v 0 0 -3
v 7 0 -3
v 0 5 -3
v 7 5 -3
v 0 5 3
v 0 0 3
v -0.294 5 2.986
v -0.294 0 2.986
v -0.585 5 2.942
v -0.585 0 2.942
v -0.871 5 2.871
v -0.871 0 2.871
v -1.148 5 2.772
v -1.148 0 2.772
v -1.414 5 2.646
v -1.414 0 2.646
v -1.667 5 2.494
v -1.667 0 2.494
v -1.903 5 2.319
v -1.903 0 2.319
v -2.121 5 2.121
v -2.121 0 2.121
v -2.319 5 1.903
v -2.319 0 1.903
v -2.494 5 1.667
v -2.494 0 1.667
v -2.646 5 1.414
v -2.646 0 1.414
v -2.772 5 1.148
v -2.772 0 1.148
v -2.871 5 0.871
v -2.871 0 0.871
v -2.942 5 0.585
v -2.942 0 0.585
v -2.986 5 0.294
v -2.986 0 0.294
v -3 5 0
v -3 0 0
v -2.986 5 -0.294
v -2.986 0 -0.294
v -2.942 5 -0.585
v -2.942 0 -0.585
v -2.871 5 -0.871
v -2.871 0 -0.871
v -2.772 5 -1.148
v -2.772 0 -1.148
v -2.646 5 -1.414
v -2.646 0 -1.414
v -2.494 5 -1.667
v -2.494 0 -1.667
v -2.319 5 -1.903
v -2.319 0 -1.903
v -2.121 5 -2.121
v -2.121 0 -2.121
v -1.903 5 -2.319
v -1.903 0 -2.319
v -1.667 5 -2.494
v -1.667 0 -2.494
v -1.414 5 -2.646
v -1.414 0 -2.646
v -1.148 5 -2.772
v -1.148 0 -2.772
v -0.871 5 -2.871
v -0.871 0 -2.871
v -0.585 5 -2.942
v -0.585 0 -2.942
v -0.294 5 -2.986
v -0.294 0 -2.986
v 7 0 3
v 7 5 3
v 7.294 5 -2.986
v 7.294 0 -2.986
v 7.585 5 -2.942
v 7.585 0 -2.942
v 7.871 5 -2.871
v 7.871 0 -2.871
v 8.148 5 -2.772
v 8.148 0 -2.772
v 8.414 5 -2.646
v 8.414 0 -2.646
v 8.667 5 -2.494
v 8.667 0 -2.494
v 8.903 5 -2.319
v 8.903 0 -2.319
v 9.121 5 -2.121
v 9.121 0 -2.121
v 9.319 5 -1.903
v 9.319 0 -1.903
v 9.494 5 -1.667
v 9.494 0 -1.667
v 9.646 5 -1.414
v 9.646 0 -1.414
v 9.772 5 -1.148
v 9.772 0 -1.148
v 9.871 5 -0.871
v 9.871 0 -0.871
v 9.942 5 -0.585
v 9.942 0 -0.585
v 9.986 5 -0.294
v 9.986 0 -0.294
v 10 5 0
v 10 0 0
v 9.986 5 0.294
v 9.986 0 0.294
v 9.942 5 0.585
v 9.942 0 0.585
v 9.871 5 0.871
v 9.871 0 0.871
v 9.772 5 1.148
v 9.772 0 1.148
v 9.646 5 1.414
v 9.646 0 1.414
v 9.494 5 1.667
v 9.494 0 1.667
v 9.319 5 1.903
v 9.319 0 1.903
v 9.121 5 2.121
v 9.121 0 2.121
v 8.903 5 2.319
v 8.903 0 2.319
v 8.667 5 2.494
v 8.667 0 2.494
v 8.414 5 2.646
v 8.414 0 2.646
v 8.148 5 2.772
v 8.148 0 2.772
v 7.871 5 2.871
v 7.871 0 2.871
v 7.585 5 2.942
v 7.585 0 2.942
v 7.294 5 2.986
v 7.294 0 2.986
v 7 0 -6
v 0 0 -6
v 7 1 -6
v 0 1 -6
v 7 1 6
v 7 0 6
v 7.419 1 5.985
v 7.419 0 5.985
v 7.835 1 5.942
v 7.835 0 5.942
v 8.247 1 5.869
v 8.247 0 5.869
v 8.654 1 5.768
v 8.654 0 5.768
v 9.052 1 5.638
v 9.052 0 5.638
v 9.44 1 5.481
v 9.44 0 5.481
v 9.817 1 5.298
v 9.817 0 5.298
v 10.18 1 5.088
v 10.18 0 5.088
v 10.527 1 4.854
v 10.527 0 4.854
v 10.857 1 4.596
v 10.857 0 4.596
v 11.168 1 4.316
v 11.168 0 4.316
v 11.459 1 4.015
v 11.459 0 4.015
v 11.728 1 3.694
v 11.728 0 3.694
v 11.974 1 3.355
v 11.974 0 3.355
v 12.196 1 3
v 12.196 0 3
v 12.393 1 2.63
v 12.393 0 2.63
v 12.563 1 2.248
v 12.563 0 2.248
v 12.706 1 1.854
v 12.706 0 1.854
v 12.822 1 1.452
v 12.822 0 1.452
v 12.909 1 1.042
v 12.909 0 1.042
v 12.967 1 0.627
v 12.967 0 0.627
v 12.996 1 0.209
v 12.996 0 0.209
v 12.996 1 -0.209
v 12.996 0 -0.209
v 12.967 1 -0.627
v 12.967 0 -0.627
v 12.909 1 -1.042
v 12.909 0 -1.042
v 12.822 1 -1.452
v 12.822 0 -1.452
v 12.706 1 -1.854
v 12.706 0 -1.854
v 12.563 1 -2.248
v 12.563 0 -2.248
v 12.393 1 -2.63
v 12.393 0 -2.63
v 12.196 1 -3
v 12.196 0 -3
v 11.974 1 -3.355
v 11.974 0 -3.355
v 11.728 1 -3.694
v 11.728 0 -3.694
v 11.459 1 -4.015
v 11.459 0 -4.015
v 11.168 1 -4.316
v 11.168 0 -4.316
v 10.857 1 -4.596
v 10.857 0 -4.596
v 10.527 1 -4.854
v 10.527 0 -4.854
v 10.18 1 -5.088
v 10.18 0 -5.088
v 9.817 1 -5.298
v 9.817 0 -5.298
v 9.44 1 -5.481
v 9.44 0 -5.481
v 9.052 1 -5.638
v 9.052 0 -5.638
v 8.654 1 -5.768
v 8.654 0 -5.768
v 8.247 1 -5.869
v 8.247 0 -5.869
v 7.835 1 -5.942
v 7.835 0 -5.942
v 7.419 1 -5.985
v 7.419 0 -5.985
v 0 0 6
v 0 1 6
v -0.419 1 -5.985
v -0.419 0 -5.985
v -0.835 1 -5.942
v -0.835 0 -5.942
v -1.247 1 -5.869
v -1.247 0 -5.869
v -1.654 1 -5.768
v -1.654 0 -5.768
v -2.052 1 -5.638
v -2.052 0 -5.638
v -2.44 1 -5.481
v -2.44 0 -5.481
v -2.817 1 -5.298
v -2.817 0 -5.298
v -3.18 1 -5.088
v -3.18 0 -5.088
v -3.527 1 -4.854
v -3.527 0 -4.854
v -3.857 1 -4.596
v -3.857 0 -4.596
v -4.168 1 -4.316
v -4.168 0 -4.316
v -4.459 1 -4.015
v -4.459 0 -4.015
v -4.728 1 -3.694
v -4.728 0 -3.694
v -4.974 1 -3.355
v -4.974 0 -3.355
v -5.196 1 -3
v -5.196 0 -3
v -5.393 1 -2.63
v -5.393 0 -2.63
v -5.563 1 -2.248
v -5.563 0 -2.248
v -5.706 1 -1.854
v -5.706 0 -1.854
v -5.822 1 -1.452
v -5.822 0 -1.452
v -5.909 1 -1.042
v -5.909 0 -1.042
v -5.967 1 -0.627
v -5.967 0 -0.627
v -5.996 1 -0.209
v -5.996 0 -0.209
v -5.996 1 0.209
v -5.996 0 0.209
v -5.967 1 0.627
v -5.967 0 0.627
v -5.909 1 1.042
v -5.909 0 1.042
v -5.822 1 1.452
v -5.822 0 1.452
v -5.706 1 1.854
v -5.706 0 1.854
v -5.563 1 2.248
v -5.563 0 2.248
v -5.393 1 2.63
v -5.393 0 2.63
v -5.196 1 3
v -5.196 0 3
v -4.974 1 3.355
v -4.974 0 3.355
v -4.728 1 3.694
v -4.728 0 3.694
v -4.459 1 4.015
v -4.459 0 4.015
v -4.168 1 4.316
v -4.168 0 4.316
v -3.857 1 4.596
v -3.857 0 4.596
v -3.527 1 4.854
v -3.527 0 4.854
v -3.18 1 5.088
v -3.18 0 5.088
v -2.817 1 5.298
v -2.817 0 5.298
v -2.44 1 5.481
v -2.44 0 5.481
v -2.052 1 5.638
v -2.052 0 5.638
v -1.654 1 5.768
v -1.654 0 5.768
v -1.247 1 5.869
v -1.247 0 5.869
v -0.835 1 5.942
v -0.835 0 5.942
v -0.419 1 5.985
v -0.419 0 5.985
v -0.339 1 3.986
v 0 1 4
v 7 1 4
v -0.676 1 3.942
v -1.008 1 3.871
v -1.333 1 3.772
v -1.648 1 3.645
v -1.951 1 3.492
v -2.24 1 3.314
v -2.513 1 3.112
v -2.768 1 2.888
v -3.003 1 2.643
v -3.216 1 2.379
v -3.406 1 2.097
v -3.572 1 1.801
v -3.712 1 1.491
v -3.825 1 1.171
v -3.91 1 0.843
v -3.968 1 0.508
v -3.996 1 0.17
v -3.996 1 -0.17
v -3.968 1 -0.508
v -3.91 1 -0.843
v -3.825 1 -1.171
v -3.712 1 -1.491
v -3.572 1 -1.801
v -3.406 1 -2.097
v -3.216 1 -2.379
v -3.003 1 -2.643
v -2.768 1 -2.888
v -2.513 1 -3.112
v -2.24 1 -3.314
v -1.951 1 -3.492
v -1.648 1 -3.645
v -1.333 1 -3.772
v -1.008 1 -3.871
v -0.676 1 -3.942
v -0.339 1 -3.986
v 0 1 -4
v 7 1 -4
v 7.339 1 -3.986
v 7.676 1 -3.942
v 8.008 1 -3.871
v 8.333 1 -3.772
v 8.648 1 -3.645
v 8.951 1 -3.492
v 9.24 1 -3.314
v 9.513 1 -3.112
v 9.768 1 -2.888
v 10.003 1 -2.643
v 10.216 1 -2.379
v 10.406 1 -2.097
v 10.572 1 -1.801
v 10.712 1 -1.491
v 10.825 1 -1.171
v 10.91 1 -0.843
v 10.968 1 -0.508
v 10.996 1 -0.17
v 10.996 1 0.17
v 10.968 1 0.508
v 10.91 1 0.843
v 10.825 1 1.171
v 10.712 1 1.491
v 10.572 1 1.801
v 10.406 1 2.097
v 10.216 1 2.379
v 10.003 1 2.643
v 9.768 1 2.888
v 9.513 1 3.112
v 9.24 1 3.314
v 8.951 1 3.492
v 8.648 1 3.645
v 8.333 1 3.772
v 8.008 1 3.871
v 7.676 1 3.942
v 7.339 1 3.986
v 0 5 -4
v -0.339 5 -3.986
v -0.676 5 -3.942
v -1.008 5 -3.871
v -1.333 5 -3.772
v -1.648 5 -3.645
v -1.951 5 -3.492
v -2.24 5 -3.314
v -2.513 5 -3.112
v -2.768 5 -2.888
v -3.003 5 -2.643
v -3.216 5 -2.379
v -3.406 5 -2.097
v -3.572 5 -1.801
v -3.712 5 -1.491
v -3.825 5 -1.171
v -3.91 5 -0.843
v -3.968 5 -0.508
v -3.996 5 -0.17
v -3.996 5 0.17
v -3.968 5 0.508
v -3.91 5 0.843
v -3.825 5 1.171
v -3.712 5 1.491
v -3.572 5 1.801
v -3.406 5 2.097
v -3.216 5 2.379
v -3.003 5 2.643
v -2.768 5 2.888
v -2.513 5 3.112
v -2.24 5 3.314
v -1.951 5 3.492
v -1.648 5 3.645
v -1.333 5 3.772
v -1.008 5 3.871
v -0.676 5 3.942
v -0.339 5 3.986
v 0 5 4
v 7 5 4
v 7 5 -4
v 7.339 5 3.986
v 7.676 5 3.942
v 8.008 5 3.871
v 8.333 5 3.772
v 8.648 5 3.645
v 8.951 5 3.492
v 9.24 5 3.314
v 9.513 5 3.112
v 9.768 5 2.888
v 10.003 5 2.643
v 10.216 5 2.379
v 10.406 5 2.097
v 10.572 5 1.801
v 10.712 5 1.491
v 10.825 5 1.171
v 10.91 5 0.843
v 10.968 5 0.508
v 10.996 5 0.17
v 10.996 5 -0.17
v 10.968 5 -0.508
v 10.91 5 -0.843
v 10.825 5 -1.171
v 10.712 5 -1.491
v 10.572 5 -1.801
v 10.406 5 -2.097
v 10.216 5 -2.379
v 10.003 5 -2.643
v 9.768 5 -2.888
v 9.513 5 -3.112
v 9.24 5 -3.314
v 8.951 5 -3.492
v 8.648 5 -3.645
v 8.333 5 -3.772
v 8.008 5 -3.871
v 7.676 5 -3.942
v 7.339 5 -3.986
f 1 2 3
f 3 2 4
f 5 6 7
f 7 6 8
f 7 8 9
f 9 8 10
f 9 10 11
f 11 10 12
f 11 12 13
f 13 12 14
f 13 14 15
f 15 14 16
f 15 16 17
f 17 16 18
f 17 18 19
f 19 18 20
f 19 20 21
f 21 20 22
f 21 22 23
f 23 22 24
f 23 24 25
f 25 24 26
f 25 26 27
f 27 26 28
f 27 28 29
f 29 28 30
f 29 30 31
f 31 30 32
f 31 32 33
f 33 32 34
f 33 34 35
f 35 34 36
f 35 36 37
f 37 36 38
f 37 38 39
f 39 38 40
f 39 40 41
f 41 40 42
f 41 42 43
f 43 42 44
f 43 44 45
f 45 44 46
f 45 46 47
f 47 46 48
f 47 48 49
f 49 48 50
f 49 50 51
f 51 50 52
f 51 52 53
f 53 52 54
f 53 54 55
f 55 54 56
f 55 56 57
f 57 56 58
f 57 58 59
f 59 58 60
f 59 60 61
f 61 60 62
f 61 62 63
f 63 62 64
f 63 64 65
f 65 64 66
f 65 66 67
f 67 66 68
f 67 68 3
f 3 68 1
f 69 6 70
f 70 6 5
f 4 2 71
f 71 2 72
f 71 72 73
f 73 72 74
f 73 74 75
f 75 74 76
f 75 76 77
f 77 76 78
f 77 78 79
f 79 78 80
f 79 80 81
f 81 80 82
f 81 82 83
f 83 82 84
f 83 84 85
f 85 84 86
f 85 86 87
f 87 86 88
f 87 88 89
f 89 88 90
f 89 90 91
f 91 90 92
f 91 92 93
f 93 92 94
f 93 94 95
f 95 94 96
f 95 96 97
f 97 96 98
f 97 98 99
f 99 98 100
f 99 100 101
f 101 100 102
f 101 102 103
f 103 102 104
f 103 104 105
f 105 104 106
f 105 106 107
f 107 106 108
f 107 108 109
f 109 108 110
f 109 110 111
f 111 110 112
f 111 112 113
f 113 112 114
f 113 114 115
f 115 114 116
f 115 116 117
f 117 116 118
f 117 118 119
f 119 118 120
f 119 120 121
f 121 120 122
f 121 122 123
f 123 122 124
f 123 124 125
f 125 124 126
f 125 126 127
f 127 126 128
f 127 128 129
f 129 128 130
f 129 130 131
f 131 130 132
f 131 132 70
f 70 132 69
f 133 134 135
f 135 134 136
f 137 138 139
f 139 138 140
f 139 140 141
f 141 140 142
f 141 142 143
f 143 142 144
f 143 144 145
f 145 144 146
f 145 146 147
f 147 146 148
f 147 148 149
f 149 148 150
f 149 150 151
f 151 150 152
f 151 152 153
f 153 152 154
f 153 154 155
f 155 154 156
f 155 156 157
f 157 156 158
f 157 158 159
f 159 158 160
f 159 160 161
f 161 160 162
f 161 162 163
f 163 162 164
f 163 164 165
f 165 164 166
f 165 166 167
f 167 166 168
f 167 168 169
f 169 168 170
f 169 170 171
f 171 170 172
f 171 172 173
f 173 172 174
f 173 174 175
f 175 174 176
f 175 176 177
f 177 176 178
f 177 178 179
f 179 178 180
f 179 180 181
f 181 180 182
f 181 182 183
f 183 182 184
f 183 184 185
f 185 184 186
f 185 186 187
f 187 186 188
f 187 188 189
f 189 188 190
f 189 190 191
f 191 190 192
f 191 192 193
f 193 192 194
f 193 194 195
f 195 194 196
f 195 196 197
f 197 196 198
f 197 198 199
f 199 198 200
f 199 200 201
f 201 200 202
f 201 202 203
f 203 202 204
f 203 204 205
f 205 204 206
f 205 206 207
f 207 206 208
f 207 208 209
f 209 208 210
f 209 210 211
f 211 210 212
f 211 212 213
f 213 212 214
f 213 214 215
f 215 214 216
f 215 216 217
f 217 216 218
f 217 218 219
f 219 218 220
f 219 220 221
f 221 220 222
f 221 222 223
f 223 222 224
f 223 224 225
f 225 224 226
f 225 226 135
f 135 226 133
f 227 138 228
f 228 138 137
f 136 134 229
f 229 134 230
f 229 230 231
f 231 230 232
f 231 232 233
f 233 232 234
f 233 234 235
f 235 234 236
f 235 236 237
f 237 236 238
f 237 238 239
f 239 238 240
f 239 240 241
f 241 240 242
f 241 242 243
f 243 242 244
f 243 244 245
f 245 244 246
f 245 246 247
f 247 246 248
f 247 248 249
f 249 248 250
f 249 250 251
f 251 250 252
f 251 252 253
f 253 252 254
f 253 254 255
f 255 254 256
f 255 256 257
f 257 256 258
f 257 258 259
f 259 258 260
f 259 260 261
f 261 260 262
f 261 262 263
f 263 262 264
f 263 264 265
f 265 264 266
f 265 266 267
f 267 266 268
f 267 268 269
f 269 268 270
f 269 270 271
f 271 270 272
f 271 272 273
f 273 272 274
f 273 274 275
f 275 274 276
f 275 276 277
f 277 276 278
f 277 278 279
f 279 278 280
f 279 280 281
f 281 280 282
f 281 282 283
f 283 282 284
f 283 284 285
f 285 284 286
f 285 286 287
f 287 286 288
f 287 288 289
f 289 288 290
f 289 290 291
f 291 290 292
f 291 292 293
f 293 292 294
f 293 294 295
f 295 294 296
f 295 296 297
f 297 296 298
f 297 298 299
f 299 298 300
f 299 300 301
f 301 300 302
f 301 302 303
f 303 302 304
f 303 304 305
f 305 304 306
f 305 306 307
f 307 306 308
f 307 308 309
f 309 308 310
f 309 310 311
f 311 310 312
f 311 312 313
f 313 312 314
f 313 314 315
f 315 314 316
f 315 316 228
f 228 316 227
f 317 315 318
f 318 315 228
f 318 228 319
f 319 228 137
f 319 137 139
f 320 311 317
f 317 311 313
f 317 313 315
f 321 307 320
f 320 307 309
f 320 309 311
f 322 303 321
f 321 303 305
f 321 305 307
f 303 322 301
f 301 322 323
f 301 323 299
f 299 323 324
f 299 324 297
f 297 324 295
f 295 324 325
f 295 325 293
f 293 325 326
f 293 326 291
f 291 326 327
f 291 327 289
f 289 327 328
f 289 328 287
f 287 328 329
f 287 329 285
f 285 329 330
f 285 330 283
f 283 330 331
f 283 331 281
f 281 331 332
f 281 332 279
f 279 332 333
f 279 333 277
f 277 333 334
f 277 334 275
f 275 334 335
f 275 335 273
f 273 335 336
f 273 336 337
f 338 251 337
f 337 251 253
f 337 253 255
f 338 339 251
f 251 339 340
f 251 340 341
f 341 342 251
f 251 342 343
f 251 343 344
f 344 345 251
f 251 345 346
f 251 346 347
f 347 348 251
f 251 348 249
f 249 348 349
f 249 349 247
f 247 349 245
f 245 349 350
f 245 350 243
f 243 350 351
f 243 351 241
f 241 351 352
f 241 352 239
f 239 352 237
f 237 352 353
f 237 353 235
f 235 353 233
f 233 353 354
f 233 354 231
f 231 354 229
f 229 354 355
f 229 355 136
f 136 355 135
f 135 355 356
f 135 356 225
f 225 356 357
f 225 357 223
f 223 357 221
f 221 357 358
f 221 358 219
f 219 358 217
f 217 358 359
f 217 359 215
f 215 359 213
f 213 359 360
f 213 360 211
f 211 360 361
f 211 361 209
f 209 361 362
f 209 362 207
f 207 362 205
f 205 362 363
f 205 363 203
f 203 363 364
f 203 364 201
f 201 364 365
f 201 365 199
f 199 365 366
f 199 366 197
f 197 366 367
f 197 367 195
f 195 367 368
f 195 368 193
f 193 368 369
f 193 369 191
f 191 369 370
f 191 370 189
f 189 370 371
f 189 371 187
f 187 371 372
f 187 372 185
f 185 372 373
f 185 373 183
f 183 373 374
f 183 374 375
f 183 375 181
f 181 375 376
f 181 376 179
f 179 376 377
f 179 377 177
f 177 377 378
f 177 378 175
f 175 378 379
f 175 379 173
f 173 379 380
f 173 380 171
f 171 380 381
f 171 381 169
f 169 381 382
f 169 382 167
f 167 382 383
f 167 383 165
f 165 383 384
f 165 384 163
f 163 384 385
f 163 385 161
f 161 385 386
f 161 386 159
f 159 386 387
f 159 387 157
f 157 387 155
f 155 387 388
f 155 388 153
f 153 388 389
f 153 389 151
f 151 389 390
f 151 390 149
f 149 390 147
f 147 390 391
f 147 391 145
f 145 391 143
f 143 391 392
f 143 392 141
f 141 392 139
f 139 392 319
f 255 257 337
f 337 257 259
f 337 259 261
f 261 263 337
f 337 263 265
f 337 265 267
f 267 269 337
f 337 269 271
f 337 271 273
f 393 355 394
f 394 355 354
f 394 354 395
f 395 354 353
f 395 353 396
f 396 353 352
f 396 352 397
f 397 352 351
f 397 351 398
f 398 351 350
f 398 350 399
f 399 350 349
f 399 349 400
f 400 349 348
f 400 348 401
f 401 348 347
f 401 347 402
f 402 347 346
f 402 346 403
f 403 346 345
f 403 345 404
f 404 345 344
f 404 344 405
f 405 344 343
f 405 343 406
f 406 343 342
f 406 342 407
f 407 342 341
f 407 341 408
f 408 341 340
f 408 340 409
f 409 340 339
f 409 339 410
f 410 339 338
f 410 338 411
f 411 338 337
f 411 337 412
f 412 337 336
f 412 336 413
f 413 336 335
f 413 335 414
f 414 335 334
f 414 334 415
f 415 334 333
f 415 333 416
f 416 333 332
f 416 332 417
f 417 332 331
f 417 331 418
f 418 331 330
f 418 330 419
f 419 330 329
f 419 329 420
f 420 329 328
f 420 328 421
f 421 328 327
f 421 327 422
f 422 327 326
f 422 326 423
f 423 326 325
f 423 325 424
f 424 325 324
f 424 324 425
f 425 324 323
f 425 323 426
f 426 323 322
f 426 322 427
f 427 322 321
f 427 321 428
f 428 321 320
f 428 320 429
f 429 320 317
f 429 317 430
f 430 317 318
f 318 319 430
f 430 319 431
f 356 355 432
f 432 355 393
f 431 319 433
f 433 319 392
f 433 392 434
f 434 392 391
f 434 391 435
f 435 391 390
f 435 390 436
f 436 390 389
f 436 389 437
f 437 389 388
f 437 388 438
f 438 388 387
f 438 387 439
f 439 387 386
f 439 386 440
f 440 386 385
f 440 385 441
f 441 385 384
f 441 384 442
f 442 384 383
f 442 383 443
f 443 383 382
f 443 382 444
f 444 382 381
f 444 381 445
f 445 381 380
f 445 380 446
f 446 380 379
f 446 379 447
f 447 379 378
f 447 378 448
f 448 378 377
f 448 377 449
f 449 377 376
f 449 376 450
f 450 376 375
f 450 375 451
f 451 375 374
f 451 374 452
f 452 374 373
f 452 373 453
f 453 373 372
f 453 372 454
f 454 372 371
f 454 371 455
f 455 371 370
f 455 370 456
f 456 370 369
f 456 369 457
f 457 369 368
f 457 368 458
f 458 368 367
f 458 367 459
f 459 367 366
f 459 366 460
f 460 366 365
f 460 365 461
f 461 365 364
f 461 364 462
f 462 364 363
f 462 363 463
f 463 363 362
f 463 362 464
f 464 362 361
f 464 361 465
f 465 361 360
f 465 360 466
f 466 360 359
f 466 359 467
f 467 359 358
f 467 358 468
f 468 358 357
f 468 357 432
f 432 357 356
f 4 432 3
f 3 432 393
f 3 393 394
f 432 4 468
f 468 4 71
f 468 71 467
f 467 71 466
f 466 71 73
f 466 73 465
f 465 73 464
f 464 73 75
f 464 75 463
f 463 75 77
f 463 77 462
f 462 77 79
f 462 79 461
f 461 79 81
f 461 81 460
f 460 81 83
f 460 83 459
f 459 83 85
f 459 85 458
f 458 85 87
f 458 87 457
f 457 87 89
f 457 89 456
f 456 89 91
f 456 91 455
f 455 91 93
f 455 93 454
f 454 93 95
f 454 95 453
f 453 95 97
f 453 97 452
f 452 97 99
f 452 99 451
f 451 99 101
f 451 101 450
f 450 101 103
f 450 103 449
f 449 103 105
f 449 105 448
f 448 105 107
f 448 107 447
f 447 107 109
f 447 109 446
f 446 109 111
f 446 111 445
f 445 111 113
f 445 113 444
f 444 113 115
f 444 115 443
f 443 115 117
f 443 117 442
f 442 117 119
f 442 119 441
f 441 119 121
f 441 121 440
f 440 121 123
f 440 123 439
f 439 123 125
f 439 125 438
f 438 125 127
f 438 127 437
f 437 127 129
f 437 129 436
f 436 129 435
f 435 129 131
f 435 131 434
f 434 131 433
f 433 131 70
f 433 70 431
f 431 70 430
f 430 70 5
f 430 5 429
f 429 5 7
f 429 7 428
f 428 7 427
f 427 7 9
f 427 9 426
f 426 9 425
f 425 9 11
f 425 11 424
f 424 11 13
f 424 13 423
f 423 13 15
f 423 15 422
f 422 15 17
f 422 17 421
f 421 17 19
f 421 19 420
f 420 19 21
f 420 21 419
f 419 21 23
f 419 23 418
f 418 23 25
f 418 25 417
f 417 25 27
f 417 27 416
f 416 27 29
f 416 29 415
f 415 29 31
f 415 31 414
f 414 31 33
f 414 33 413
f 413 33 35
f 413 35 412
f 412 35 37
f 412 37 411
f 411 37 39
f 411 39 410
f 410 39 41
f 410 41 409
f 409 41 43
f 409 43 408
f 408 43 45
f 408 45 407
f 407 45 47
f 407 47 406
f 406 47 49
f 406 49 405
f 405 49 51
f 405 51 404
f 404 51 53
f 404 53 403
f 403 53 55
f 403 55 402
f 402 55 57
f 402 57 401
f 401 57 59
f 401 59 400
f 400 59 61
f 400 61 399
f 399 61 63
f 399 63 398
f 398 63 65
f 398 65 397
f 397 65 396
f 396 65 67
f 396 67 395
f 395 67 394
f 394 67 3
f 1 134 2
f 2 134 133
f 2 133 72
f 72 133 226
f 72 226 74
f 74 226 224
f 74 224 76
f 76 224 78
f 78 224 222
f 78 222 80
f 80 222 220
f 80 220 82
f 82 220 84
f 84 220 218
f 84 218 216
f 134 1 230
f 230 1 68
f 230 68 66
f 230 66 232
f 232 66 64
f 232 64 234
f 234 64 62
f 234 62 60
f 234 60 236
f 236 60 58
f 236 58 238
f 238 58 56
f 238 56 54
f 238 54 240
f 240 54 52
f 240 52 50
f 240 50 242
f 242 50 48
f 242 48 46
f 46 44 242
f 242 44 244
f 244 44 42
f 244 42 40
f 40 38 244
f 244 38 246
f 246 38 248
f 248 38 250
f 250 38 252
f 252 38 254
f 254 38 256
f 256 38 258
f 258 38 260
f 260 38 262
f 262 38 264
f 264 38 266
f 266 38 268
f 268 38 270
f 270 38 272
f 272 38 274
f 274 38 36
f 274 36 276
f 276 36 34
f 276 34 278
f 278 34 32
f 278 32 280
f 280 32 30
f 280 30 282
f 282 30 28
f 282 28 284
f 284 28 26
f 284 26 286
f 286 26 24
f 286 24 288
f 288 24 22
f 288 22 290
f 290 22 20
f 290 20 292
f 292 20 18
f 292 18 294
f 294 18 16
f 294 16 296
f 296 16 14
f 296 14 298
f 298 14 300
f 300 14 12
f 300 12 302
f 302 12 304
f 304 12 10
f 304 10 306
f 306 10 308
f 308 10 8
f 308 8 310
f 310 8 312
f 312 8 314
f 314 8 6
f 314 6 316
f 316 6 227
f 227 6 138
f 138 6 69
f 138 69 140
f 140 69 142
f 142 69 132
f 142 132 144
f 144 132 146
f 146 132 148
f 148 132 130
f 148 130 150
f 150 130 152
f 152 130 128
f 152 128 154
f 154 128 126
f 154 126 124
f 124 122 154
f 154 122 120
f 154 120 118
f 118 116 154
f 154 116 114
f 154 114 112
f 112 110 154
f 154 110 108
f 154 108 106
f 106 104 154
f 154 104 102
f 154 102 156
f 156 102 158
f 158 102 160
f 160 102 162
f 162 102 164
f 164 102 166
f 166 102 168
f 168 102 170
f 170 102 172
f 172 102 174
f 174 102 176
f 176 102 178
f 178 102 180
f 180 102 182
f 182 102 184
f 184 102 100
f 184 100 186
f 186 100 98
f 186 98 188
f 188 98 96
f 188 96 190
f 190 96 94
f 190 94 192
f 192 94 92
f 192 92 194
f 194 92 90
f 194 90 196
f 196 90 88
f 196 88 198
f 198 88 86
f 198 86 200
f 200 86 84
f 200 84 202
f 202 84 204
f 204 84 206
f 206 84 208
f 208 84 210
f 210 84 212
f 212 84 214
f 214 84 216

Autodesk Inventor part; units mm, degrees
ref_plane "YZ Plane" through (0, 0, 0) normal (1, 0, 0) x (0, 1, 0)
ref_plane "XZ Plane" through (0, 0, 0) normal (0, 1, 0) x (-1, 0, 0)
ref_plane "XY Plane" through (0, 0, 0) normal (0, 0, 1) x (1, 0, 0)
sketch "Эскиз1" plane through (0, 0, 0) normal (0, 1, 0) x (-1, 0, 0)
  line L0 (0, 0) -> (-7, 0) construction
  line L1 (0, 4) -> (-7, 4)
  line L2 (-7, -4) -> (0, -4)
  arc A0 (0, -4) -> (0, 4) centre (0, 0) ccw
  arc A1 (-7, 4) -> (-7, -4) centre (-7, 0) ccw
  point P0 (-3.5, 0)
  dimension "d0" = 7
  dimension "d1" = 8
extrude "Выдавливание1" add sketch "Эскиз1" along normal blind 5
sketch "Эскиз2" plane through (0, 0, 0) normal (0, -1, 0) x (1, 0, 0)
  line L0 (0, 4) -> (7, 4) projected
  arc A0 (0, 4) -> (0, -4) centre (0, 0) ccw projected
  line L1 (7, -4) -> (0, -4) projected
  arc A1 (7, -4) -> (7, 4) centre (7, 0) ccw projected
  arc A2 (0, 6) -> (0, -6) centre (0, 0) ccw
  line L2 (0, 6) -> (7, 6)
  arc A3 (7, -6) -> (7, 6) centre (7, 0) ccw
  line L3 (7, -6) -> (0, -6)
  dimension "d4" = 2
extrude "Выдавливание2" add sketch "Эскиз2" against normal blind 1
sketch "Эскиз3" plane through (0, 5, 0) normal (0, 1, 0) x (1, 0, 0)
  line L0 (0, -4) -> (7, -4) projected
  arc A0 (7, -4) -> (7, 4) centre (7, 0) ccw projected
  line L1 (7, 4) -> (0, 4) projected
  arc A1 (0, 4) -> (0, -4) centre (0, 0) ccw projected
  line L2 (0, 3) -> (7, 3)
  arc A2 (7, -3) -> (7, 3) centre (7, 0) ccw
  line L3 (7, -3) -> (0, -3)
  arc A3 (0, 3) -> (0, -3) centre (0, 0) ccw
  dimension "d7" = 1
extrude "Выдавливание3" cut sketch "Эскиз3" against normal up to surface (5 mm away) contours L2 A2 L3 A3
properties part number "Flanec_podProvoda"
